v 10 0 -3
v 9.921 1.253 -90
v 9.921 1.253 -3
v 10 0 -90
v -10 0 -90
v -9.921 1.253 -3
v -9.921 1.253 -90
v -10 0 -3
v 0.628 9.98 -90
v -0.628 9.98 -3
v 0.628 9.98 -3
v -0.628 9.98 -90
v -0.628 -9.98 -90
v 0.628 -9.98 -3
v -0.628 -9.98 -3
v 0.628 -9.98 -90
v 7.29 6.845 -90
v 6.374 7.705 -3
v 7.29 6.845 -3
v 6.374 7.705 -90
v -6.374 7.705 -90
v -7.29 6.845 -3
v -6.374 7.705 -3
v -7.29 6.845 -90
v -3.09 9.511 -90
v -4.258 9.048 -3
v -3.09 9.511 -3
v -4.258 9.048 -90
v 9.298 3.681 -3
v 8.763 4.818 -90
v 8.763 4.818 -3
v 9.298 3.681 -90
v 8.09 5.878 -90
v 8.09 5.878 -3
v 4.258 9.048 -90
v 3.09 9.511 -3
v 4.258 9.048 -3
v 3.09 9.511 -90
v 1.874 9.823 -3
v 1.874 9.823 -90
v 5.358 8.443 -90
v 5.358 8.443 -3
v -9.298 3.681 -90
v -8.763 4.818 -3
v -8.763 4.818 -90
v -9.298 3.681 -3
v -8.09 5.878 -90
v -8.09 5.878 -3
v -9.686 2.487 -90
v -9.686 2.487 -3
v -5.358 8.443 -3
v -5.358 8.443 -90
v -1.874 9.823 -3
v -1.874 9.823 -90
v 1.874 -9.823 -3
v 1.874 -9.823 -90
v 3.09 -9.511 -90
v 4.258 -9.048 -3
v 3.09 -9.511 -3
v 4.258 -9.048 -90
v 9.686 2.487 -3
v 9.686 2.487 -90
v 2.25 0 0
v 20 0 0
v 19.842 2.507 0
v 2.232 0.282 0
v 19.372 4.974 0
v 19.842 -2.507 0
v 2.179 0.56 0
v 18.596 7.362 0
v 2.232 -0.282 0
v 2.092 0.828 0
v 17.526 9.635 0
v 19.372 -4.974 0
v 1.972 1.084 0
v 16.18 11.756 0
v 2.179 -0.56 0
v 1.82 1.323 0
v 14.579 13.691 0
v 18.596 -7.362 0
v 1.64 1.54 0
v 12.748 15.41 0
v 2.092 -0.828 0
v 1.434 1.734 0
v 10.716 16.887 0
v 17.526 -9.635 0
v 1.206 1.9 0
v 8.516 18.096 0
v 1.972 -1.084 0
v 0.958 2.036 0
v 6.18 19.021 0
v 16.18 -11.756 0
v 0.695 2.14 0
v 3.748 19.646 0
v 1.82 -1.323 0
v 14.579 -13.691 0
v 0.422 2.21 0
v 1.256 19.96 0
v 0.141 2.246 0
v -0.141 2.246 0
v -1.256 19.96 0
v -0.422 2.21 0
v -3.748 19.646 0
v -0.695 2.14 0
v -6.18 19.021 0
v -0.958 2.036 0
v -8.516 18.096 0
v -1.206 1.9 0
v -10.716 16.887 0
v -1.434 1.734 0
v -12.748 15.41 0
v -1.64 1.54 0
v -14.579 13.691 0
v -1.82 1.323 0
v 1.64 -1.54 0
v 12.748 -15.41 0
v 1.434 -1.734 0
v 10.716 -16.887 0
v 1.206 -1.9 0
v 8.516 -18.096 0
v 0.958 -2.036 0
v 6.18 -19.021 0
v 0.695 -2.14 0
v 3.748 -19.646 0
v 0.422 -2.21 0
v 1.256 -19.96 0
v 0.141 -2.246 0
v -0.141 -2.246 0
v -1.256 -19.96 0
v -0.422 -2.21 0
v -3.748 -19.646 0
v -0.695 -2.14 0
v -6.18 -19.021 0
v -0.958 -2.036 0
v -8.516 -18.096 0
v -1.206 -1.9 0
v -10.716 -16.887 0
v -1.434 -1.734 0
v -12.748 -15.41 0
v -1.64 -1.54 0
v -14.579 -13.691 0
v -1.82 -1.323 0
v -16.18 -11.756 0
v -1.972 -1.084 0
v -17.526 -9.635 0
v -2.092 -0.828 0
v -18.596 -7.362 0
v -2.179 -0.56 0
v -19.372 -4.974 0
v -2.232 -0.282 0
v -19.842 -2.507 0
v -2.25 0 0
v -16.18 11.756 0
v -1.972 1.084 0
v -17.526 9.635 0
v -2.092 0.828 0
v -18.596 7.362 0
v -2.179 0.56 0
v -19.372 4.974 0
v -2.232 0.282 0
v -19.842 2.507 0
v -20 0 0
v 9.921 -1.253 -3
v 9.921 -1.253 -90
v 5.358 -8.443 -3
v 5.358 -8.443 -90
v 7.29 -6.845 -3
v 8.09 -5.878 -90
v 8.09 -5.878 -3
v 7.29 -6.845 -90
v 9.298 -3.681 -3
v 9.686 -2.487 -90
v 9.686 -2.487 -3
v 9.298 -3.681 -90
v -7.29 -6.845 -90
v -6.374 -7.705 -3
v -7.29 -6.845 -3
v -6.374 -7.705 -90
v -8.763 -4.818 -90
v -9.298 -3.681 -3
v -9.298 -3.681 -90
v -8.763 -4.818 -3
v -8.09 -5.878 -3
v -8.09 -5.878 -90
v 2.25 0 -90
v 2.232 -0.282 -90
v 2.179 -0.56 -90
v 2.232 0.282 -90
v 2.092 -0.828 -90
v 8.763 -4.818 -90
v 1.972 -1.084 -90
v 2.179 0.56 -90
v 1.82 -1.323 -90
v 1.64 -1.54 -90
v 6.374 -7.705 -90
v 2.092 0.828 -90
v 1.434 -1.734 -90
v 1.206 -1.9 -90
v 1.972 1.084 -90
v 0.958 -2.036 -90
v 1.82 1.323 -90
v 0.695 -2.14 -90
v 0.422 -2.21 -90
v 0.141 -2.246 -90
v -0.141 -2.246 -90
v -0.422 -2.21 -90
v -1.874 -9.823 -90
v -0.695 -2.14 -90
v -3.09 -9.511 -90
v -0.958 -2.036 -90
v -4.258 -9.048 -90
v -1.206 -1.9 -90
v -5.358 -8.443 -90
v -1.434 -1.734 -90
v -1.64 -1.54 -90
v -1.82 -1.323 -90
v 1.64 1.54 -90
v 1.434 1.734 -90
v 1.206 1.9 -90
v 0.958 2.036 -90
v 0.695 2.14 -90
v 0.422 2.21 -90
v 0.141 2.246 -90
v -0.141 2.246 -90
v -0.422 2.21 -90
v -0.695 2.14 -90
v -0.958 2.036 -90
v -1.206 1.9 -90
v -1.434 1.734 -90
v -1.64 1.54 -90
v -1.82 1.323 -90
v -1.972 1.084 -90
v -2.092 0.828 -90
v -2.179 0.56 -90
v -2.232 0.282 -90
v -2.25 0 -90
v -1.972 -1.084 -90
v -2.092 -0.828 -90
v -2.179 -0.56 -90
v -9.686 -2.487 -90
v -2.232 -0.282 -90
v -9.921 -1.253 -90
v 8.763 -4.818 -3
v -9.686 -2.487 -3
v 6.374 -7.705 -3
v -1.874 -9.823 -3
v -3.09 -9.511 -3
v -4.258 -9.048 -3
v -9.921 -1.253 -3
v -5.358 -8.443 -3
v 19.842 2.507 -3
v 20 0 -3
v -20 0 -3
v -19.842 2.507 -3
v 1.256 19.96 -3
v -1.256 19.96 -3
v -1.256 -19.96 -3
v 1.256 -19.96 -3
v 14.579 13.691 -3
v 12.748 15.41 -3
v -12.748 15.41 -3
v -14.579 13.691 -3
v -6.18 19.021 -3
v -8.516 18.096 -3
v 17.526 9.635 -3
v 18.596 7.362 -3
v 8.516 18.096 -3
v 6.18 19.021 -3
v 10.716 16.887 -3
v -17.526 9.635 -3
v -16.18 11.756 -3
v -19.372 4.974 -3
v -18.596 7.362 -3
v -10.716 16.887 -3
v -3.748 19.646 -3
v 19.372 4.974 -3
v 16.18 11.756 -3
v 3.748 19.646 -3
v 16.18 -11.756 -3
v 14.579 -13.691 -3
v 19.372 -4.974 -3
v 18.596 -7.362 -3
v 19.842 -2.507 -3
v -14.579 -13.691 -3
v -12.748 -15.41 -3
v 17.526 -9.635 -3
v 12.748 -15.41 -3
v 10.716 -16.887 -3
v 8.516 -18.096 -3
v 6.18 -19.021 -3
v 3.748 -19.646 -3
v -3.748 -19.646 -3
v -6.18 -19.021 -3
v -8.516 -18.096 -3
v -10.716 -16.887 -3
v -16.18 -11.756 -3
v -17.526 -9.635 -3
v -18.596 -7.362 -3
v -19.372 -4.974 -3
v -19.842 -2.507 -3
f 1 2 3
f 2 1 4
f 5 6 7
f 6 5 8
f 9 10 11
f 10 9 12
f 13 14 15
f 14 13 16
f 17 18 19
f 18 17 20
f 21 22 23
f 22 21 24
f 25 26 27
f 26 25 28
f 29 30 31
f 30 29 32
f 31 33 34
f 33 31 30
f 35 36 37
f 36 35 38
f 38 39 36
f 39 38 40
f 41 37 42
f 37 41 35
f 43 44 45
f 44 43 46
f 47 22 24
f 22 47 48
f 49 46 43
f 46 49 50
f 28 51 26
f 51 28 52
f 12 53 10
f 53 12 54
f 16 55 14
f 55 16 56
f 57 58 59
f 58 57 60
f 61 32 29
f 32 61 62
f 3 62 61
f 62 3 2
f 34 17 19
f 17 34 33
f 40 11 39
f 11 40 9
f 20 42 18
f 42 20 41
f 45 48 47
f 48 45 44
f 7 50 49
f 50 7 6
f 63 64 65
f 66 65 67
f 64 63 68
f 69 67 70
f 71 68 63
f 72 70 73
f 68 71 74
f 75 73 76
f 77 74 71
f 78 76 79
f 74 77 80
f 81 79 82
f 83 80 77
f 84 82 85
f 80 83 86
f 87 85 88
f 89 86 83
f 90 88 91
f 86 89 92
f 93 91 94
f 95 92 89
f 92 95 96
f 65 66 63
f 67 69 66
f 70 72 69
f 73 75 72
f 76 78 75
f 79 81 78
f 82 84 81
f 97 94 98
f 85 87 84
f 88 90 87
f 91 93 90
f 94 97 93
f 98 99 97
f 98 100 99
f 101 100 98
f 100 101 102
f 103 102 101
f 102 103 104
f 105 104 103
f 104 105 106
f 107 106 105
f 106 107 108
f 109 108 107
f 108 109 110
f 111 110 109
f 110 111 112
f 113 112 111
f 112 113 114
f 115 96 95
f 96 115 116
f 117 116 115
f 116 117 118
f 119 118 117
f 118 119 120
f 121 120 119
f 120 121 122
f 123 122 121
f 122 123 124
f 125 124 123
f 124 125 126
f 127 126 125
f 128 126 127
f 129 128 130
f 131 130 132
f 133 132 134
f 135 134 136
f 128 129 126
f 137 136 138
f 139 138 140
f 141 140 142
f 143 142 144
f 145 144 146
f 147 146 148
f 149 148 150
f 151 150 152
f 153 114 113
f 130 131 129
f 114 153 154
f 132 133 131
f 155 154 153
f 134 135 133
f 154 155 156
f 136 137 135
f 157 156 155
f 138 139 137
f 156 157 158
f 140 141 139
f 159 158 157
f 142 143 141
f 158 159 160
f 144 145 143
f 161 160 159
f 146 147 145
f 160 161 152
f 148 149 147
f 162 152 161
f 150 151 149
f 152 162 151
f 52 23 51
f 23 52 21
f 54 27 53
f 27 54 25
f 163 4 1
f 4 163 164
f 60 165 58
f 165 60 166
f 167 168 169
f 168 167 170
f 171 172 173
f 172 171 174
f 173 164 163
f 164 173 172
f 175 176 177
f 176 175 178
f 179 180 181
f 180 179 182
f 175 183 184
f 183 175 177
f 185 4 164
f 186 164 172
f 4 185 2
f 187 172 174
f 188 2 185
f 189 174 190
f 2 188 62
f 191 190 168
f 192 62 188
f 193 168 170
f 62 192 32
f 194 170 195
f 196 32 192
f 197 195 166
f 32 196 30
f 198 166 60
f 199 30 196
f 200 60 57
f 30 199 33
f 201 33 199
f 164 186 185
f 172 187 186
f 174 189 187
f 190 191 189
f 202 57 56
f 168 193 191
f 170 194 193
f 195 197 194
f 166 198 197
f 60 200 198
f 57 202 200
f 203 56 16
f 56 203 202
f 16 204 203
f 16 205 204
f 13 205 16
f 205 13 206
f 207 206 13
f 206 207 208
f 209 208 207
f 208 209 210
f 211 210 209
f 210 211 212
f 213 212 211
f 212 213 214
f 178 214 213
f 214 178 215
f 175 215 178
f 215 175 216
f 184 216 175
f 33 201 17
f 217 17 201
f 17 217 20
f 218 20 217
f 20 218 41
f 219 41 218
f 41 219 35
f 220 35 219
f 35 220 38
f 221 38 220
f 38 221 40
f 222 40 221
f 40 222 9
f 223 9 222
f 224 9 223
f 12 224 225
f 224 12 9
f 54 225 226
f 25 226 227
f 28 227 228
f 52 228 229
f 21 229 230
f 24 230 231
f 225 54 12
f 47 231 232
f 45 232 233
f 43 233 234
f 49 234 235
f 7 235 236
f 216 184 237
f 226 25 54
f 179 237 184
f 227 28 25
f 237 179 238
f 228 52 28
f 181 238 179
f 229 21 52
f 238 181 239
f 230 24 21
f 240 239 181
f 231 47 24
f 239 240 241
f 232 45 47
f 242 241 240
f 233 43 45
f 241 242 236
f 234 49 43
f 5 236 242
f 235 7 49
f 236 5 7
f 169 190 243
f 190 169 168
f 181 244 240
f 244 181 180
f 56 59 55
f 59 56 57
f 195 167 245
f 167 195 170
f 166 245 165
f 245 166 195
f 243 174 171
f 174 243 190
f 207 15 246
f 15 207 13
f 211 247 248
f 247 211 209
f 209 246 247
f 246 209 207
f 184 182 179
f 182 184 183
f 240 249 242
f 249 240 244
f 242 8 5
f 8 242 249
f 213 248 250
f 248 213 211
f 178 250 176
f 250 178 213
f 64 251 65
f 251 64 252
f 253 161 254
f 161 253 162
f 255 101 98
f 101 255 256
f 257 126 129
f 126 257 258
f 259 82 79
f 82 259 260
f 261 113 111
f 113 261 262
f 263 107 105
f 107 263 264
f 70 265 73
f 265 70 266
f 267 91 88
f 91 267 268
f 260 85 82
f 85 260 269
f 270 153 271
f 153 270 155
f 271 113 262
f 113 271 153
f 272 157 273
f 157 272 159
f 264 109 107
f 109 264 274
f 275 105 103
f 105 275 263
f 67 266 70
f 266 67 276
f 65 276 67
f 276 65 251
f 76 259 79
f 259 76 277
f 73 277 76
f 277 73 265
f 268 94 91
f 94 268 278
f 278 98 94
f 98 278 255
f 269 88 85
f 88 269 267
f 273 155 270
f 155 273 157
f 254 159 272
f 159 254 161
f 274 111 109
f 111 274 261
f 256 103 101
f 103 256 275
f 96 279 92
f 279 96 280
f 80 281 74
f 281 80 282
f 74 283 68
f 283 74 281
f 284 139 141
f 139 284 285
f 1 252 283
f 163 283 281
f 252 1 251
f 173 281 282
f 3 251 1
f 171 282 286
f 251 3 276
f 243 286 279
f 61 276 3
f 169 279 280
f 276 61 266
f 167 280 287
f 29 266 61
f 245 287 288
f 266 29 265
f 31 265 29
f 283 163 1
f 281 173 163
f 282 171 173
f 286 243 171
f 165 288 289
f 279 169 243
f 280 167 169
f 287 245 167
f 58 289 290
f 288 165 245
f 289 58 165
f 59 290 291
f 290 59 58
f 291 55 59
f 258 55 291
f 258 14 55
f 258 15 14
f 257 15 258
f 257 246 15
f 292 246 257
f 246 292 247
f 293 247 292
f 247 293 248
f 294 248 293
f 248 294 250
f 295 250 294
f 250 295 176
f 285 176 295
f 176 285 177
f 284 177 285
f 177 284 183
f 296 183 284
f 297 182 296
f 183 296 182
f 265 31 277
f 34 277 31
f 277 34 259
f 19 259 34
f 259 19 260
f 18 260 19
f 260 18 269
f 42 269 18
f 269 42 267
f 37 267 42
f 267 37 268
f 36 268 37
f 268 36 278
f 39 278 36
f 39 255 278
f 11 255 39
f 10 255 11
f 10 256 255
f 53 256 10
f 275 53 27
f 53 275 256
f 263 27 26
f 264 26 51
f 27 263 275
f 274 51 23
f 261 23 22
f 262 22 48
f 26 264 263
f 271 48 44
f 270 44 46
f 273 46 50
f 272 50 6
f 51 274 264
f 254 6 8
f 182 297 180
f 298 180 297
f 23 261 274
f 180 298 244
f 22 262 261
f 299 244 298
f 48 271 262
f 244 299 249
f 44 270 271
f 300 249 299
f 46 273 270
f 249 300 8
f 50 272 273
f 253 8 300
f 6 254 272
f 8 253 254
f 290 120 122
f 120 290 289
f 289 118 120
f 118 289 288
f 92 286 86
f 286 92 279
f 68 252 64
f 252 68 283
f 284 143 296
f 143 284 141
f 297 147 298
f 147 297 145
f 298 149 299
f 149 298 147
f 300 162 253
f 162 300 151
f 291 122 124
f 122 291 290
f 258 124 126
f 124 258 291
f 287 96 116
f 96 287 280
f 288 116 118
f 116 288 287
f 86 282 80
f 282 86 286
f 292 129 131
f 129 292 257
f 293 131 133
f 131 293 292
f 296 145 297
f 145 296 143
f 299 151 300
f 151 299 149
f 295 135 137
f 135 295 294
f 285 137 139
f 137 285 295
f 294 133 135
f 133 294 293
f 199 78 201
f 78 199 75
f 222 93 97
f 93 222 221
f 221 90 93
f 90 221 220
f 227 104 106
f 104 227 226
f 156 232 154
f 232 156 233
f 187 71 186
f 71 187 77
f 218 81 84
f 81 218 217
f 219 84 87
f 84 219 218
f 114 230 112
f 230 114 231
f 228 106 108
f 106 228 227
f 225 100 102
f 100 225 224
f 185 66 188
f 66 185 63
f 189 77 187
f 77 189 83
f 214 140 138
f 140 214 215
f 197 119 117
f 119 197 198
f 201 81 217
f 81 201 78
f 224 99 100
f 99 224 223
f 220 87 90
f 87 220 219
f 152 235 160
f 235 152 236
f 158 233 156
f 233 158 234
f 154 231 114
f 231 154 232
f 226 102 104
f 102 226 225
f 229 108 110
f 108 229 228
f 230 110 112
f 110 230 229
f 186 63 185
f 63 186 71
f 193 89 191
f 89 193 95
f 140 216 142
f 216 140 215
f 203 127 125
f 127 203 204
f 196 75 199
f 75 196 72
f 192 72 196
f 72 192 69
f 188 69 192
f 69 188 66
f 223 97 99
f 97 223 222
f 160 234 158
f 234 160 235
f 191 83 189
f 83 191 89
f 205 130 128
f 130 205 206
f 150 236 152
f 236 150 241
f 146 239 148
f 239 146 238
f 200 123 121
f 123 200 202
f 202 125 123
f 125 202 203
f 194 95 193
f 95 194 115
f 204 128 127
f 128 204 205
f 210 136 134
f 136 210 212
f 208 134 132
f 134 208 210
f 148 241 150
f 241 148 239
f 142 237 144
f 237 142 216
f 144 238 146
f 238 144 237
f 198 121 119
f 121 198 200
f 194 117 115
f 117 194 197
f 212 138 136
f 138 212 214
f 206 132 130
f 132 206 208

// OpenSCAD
$fn = 50;


difference() {
	union() {
		translate(v = [0, 0, -90.0000000000]) {
			cylinder(h = 90, r = 10.0000000000);
		}
		translate(v = [0, 0, -3.0000000000]) {
			cylinder(h = 3, r = 20.0000000000);
		}
	}
	union() {
		#translate(v = [0, 0, -90]) {
			cylinder(h = 90, r = 2.2500000000);
		}
	}
}
